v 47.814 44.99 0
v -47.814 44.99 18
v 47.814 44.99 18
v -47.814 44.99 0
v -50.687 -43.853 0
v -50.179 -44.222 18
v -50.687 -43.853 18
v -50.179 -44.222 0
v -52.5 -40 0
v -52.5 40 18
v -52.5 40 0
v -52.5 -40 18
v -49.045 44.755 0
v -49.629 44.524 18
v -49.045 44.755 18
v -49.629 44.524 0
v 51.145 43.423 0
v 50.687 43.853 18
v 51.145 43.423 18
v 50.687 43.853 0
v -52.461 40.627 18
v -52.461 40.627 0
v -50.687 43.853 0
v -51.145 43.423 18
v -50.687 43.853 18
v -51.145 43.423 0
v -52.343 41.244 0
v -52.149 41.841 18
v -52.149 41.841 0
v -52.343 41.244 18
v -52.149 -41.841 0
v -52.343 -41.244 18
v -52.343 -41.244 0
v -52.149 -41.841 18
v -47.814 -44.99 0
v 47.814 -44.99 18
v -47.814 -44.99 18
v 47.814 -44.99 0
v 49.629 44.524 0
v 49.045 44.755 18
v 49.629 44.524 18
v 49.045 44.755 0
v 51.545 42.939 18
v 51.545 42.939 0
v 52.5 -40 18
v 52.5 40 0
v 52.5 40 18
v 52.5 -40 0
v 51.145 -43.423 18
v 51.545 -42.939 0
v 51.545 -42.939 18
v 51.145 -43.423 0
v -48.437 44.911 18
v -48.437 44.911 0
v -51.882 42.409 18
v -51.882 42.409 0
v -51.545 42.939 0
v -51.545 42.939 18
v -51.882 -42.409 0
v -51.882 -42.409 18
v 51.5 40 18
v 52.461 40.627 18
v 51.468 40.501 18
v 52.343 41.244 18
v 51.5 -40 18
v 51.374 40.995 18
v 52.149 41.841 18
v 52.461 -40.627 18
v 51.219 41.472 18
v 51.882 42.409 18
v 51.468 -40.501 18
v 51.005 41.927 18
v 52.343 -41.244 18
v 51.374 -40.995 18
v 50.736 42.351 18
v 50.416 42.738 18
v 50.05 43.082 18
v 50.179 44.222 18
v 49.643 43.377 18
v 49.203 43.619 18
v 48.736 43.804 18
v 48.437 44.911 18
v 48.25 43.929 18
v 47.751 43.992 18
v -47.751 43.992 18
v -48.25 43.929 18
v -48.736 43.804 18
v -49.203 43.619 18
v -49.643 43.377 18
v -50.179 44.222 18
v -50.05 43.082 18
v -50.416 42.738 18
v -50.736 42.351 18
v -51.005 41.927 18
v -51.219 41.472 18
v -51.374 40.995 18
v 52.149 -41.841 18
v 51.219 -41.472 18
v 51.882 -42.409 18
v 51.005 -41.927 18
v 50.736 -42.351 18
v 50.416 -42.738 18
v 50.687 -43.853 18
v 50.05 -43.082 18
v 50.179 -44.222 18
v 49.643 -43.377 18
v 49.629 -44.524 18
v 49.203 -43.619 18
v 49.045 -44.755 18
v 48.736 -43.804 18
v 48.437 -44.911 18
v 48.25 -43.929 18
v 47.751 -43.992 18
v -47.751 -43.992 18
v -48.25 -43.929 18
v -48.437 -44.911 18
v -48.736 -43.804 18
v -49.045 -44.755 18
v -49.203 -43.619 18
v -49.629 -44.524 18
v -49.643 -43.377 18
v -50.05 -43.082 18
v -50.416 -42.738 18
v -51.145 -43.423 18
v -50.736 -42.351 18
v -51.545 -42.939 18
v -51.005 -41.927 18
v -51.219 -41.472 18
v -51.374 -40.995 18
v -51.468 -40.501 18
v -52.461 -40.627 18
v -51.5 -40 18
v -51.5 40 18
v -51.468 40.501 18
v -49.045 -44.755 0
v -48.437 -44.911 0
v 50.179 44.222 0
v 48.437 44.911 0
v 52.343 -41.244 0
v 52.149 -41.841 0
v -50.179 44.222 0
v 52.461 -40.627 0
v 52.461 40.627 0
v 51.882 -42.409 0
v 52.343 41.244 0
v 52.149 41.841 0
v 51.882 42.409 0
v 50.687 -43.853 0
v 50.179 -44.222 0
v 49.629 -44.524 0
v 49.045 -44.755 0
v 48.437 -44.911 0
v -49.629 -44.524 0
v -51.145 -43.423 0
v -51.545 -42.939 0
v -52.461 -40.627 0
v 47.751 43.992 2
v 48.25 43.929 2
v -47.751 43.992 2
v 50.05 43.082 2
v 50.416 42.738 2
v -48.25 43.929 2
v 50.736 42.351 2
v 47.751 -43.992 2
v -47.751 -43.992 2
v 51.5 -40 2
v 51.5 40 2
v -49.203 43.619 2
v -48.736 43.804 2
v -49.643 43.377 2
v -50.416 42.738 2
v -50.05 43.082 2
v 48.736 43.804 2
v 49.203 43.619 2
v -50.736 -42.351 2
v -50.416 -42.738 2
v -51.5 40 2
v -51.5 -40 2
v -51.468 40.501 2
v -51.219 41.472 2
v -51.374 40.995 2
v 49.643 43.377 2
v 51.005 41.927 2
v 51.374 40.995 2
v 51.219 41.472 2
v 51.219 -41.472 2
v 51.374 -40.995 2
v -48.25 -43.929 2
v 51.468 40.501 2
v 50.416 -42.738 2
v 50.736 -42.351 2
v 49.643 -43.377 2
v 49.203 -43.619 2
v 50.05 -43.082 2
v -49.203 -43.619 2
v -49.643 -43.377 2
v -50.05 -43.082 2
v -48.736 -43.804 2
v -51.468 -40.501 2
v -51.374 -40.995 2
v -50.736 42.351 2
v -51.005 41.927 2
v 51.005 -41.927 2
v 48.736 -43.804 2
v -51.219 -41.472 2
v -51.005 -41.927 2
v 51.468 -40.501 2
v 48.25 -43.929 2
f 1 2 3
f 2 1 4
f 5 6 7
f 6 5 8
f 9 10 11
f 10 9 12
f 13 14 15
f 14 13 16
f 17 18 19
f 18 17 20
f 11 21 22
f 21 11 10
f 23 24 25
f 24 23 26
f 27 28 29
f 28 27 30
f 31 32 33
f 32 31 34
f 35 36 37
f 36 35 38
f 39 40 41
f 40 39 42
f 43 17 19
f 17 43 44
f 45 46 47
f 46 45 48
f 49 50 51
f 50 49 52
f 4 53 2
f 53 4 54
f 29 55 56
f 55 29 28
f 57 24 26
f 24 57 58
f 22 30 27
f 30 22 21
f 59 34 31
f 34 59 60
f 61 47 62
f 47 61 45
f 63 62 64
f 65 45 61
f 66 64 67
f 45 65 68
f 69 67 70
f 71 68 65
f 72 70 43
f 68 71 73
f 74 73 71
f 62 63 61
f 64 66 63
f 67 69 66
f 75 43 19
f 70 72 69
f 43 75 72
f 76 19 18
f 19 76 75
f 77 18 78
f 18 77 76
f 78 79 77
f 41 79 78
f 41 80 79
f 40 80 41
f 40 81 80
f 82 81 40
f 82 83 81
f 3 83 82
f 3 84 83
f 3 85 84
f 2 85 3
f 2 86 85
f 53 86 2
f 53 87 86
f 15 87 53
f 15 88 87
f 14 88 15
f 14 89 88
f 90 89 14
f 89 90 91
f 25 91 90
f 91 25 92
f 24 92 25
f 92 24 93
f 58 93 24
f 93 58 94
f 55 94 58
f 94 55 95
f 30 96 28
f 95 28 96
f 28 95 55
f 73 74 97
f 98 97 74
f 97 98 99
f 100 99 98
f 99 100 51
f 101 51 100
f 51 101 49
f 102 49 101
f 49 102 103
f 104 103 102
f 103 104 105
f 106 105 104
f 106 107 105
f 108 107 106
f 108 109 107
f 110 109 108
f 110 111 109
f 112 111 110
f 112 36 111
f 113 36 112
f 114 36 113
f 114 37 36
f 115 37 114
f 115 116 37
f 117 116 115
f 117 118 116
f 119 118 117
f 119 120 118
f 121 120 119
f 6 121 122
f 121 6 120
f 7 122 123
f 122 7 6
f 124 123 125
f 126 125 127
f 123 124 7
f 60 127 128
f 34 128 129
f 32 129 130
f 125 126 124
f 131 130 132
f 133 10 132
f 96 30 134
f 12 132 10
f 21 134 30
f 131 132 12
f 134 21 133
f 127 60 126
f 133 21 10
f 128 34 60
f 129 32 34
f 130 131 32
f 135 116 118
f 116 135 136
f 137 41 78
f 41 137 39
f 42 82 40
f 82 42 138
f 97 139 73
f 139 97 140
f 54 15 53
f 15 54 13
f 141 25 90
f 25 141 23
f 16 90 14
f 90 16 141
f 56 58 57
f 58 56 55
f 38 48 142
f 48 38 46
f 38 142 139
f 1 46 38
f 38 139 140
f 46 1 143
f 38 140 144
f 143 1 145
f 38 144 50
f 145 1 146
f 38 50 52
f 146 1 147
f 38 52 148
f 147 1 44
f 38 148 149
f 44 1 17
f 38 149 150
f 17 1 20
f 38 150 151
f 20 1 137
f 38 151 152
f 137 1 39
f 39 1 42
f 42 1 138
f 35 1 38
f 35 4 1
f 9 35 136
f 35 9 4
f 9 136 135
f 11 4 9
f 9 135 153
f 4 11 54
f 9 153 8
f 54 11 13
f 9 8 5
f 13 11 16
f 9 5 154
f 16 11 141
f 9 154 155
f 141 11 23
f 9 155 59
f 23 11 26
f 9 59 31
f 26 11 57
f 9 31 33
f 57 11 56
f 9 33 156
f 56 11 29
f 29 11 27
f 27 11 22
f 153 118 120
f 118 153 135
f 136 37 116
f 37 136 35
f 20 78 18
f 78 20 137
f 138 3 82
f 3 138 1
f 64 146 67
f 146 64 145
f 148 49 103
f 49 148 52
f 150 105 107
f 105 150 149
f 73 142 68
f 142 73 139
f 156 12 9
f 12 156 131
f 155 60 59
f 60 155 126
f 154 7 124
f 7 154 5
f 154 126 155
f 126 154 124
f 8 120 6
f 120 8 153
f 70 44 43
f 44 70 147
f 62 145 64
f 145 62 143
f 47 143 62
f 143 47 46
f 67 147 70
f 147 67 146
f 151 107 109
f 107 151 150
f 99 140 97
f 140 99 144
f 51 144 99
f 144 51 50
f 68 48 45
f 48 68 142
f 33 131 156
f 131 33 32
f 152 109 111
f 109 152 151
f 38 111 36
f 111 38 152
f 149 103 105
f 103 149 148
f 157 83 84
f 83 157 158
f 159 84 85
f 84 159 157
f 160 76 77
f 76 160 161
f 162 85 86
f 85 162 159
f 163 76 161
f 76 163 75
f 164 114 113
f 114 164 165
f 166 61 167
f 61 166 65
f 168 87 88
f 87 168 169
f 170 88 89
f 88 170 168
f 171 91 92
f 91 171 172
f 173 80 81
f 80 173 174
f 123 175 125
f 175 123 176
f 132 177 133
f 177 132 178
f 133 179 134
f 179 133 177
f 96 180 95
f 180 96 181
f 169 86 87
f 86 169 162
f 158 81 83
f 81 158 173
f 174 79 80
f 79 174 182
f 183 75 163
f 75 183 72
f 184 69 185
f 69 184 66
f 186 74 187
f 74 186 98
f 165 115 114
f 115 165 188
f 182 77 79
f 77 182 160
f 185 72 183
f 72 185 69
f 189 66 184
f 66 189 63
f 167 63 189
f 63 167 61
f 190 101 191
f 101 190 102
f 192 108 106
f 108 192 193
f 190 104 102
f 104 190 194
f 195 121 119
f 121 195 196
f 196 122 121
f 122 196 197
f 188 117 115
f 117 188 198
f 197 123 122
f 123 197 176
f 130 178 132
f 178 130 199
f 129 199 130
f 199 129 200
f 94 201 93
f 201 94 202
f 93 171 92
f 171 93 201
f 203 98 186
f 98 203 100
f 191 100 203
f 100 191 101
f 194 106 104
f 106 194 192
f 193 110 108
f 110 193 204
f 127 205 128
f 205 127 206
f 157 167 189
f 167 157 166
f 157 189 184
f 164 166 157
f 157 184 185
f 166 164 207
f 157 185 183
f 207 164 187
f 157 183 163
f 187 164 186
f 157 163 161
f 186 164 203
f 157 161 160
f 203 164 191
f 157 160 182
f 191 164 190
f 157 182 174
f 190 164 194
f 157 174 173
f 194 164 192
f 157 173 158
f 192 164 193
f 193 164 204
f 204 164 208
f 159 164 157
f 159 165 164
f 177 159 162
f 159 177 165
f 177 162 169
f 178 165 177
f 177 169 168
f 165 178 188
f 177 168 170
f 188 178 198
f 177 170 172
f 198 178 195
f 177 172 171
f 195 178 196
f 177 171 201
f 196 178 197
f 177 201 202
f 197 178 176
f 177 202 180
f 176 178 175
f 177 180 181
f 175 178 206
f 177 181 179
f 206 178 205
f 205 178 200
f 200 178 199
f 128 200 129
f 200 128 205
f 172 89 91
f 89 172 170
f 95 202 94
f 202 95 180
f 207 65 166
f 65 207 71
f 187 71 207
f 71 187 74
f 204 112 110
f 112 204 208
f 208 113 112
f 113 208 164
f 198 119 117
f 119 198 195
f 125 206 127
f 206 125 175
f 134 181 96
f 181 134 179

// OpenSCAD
$fn = 50;


difference() {
	union() {
		hull() {
			translate(v = [-47.5000000000, 40.0000000000, 0]) {
				cylinder(h = 18, r = 5);
			}
			translate(v = [47.5000000000, 40.0000000000, 0]) {
				cylinder(h = 18, r = 5);
			}
			translate(v = [-47.5000000000, -40.0000000000, 0]) {
				cylinder(h = 18, r = 5);
			}
			translate(v = [47.5000000000, -40.0000000000, 0]) {
				cylinder(h = 18, r = 5);
			}
		}
	}
	union() {
		translate(v = [0, 0, 2]) {
			hull() {
				translate(v = [-47.5000000000, 40.0000000000, 0]) {
					cylinder(h = 16, r = 4);
				}
				translate(v = [47.5000000000, 40.0000000000, 0]) {
					cylinder(h = 16, r = 4);
				}
				translate(v = [-47.5000000000, -40.0000000000, 0]) {
					cylinder(h = 16, r = 4);
				}
				translate(v = [47.5000000000, -40.0000000000, 0]) {
					cylinder(h = 16, r = 4);
				}
			}
		}
	}
}
